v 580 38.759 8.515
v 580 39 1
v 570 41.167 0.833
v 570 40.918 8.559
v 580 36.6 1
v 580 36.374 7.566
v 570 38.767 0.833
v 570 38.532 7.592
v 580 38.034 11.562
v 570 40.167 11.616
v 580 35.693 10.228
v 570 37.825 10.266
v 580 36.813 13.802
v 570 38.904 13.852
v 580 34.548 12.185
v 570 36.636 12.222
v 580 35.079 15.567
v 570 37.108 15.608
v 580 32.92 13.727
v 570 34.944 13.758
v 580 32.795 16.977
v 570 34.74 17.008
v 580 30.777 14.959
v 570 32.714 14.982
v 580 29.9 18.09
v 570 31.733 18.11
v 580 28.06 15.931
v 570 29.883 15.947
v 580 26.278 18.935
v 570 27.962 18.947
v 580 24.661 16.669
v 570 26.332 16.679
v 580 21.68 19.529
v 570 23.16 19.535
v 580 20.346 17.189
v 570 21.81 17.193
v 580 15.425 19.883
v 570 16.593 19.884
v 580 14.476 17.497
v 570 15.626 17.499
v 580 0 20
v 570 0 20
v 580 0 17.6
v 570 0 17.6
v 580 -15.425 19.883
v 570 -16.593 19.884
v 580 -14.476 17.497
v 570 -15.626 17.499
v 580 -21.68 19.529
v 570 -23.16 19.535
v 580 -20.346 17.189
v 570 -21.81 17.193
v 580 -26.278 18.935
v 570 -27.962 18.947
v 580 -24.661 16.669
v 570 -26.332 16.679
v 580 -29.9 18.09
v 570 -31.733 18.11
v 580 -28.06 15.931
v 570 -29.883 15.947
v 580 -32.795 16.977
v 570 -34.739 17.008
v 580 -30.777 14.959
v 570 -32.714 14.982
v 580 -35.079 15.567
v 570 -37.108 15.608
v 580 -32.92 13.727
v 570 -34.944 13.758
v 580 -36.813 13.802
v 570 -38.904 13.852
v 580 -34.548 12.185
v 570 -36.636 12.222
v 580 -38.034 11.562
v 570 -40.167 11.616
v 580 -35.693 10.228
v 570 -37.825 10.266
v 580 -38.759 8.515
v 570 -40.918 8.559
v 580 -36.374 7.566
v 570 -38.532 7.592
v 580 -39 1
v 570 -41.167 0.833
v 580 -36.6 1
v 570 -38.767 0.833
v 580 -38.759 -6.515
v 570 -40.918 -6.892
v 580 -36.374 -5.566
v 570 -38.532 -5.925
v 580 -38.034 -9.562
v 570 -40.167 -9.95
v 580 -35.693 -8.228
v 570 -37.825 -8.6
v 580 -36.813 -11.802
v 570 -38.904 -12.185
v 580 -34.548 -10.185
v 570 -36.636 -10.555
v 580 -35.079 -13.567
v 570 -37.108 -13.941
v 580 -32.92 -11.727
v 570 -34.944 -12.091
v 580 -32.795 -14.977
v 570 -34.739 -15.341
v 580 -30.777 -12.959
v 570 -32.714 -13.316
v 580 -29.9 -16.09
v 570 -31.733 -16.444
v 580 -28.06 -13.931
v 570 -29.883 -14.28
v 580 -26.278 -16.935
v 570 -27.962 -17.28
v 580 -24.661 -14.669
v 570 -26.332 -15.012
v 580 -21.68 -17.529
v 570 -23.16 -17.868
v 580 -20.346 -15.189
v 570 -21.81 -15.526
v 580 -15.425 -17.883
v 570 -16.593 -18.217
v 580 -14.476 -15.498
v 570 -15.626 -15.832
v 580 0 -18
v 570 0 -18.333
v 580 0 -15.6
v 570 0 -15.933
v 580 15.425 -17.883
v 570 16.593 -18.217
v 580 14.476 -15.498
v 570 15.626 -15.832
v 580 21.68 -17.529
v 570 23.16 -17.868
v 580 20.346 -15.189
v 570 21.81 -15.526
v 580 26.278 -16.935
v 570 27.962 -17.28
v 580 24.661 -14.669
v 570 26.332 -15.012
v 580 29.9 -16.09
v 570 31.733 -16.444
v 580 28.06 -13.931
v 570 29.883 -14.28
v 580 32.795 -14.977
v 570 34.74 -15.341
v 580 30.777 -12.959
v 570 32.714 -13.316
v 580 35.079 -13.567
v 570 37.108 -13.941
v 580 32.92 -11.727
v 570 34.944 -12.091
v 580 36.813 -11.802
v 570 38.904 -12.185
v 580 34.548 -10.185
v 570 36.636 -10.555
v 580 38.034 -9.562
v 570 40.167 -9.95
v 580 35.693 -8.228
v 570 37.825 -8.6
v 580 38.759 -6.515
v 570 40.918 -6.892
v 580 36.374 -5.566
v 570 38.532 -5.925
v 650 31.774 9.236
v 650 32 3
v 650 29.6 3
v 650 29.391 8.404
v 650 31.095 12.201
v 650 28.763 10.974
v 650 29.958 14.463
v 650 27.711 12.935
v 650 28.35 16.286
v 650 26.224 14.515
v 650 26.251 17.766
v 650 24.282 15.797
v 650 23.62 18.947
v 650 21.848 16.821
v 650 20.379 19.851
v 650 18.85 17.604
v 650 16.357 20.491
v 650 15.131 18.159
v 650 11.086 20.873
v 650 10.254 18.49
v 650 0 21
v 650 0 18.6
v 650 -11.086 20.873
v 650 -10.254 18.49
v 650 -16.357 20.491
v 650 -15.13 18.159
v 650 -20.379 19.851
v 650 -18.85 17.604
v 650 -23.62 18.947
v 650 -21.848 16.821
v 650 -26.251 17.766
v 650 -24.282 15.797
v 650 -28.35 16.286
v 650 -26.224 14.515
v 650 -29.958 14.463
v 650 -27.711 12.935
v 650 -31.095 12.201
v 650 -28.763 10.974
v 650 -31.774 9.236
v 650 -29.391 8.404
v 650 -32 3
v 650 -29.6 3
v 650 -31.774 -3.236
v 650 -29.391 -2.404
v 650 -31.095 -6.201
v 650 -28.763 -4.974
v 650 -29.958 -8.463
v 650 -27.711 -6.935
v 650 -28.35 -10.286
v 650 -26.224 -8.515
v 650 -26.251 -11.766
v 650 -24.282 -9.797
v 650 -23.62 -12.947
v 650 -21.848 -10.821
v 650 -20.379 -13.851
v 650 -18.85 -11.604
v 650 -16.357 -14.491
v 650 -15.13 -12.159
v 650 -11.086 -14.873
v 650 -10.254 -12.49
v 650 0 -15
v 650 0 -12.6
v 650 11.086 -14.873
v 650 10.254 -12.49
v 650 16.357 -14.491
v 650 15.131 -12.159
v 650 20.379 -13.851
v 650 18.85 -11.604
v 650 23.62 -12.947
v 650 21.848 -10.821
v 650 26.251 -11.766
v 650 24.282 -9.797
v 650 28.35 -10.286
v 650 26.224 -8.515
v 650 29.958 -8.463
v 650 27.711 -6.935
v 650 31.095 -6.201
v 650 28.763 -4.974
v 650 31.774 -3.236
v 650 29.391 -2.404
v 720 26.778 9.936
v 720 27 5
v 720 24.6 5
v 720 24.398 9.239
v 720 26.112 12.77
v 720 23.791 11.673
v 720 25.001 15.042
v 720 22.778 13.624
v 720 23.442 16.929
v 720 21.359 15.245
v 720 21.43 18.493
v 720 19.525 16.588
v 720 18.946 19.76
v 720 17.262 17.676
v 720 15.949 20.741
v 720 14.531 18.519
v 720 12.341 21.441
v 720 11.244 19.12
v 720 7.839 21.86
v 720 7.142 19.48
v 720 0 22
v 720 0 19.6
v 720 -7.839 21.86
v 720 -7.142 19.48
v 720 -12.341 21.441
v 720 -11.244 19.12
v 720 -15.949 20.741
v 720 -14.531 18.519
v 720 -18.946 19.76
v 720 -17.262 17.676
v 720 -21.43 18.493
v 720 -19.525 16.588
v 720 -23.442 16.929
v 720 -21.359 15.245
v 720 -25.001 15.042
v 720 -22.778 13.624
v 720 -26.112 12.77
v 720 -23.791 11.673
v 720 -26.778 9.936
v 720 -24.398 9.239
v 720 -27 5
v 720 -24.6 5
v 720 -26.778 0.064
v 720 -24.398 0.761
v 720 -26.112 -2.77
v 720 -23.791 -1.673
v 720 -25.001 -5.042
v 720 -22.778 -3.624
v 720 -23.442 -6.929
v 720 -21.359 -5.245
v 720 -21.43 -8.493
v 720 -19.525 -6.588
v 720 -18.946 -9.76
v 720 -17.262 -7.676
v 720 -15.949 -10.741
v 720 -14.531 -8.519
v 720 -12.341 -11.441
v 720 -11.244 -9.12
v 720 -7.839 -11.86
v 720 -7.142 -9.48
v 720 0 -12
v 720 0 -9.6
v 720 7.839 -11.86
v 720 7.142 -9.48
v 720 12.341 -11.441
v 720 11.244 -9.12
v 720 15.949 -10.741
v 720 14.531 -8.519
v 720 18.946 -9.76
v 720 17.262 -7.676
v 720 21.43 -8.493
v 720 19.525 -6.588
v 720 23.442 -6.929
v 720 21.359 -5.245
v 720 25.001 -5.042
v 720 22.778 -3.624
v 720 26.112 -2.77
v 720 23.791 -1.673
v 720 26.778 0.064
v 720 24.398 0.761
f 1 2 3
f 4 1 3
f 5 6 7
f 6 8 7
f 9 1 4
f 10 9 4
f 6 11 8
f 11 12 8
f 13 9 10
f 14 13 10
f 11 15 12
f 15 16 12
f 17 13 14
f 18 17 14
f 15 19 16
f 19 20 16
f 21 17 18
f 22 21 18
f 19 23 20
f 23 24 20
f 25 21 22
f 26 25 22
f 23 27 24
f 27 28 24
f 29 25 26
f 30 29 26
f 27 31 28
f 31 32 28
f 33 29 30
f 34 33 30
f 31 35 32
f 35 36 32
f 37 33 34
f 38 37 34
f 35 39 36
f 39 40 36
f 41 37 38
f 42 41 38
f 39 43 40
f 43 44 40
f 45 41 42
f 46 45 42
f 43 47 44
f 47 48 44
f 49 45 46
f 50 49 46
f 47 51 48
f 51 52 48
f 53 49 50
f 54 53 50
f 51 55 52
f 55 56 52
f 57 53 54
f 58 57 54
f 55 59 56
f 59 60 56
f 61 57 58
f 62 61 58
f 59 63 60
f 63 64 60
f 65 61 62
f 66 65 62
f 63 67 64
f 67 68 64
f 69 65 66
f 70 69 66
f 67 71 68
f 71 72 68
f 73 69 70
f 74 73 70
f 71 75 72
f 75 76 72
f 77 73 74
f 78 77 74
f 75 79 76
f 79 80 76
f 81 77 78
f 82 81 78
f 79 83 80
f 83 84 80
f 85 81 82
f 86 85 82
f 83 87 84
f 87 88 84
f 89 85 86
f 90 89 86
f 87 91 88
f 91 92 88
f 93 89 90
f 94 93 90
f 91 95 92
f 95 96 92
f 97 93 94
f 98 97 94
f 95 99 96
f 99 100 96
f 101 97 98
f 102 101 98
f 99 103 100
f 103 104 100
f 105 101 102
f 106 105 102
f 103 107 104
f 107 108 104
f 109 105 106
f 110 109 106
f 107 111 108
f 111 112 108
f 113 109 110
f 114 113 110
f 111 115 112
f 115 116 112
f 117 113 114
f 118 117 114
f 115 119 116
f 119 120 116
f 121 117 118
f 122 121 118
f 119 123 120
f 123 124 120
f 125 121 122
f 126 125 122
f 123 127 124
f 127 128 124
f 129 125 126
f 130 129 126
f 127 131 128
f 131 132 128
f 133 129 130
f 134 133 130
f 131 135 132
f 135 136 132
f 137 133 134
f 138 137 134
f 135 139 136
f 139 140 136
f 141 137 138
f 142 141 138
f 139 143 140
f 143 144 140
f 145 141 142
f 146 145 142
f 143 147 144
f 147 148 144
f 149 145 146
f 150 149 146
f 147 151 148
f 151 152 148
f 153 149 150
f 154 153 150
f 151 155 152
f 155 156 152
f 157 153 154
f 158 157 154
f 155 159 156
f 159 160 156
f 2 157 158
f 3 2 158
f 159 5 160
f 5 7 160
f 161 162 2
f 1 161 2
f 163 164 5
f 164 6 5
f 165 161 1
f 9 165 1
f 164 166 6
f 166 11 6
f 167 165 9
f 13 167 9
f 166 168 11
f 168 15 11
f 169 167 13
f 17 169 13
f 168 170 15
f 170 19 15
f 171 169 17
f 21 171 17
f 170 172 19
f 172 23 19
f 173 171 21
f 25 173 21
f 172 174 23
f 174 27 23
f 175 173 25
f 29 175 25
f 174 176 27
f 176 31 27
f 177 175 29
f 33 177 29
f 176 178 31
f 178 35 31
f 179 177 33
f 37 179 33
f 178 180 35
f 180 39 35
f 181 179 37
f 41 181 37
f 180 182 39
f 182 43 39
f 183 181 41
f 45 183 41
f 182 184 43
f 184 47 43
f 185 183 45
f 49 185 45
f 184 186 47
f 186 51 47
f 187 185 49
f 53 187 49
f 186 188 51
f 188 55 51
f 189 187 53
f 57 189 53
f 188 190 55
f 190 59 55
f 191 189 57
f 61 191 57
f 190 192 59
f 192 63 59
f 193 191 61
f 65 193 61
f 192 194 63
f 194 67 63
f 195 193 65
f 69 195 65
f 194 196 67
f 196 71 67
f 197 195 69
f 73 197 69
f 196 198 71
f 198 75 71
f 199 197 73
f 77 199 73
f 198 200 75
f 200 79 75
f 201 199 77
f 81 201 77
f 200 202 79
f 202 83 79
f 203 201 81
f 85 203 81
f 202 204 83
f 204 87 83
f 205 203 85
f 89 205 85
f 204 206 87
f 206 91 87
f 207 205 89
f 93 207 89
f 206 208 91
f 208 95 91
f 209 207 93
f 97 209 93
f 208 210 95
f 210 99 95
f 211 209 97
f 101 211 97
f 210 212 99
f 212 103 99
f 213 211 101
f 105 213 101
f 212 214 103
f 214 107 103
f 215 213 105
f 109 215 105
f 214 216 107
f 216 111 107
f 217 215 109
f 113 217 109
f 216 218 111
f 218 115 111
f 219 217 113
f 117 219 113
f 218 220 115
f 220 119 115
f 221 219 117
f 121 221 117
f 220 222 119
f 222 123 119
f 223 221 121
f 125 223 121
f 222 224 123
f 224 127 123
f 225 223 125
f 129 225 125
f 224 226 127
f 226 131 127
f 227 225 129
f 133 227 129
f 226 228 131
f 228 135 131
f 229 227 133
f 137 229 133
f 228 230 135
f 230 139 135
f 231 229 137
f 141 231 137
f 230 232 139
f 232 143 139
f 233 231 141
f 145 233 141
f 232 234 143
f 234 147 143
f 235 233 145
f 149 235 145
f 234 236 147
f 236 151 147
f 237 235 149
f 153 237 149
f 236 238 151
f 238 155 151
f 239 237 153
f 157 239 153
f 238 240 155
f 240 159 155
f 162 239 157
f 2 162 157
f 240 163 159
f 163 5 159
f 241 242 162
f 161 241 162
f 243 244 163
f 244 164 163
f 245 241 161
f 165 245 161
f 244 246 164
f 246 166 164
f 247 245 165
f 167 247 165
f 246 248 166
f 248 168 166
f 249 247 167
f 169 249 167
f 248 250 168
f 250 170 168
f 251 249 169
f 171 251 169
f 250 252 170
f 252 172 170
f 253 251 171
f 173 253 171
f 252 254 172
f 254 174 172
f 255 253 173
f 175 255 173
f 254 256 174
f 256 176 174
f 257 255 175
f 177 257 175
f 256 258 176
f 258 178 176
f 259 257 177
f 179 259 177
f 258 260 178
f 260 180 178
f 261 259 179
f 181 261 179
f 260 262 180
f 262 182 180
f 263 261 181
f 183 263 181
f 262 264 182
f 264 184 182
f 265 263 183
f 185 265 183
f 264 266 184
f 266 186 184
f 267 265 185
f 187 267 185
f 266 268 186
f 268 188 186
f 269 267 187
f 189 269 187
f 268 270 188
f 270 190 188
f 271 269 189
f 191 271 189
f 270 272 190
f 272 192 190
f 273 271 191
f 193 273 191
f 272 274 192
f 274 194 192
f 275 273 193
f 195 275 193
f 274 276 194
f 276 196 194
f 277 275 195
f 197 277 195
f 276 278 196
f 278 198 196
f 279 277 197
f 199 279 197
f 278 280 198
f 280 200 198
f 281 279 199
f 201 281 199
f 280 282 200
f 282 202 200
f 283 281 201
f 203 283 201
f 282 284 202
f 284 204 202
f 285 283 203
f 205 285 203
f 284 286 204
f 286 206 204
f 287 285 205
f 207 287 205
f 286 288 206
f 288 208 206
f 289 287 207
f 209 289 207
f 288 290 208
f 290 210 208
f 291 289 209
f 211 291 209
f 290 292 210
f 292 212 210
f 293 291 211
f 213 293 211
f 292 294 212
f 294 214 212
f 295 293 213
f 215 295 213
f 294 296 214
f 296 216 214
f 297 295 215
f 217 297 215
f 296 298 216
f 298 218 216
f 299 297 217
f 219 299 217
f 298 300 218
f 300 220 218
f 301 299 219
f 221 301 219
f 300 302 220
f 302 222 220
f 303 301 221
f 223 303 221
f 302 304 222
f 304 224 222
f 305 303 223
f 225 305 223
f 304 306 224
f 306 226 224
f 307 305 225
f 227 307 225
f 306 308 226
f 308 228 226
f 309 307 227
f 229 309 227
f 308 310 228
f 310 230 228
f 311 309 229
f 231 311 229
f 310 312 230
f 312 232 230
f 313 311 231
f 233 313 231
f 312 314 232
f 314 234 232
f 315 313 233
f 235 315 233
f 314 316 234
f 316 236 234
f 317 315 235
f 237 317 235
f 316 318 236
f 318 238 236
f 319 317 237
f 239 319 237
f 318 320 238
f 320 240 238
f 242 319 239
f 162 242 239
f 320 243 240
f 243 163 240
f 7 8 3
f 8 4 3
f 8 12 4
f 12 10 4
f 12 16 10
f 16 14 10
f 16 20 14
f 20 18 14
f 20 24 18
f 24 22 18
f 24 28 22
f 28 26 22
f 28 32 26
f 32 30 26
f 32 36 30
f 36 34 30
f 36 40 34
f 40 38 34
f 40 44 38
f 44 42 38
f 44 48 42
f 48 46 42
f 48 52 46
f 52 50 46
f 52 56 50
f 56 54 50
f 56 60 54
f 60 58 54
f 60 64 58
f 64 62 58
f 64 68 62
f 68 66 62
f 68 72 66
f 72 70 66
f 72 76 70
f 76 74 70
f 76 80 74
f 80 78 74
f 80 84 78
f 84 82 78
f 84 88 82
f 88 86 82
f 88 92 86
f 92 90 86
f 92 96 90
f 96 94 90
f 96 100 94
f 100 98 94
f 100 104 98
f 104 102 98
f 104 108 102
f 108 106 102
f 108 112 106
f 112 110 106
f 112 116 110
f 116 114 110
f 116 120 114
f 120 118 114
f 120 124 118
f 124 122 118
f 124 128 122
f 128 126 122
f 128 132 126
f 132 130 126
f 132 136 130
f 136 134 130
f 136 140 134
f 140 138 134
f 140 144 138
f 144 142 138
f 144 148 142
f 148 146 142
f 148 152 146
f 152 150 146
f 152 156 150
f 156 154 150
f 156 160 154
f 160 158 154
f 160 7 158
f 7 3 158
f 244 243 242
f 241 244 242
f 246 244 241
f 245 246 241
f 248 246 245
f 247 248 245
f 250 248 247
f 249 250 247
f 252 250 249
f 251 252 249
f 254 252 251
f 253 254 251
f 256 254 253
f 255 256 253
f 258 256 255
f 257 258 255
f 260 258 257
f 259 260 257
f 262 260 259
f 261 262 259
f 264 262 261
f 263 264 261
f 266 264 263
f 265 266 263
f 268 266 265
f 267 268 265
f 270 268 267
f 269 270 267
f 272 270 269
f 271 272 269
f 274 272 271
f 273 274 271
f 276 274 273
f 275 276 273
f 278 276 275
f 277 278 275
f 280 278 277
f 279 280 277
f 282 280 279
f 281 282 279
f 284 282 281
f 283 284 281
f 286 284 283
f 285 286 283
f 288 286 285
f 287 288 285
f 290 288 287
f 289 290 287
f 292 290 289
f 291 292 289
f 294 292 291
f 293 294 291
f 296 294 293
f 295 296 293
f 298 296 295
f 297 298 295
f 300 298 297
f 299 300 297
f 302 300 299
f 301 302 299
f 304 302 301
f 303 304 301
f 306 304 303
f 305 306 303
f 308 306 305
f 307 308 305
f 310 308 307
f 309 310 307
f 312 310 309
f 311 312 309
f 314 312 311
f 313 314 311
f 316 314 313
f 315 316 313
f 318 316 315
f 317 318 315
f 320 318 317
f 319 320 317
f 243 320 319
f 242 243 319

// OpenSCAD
polyhedron(points=[[570.0, 41.166667, 0.833333], [570.0, 40.917639, 8.558963], [570.0, 40.167171, 11.616394], [570.0, 38.904296, 13.85209], [570.0, 37.107674, 15.607767], [570.0, 34.739541, 17.007613], [570.0, 31.732914, 18.110186], [570.0, 27.962024, 18.94667], [570.0, 23.160138, 19.534648], [570.0, 16.59331, 19.884056], [570.0, 0.0, 20.0], [570.0, -16.59331, 19.884056], [570.0, -23.160138, 19.534648], [570.0, -27.962024, 18.94667], [570.0, -31.732914, 18.110186], [570.0, -34.739541, 17.007613], [570.0, -37.107674, 15.607767], [570.0, -38.904296, 13.85209], [570.0, -40.167171, 11.616394], [570.0, -40.917639, 8.558963], [570.0, -41.166667, 0.833334], [570.0, -40.917639, -6.892297], [570.0, -40.167171, -9.949727], [570.0, -38.904296, -12.185423], [570.0, -37.107674, -13.9411], [570.0, -34.739541, -15.340947], [570.0, -31.732914, -16.443519], [570.0, -27.962024, -17.280003], [570.0, -23.160138, -17.867981], [570.0, -16.59331, -18.217389], [570.0, -1e-06, -18.333333], [570.0, 16.59331, -18.217389], [570.0, 23.160138, -17.867981], [570.0, 27.962024, -17.280003], [570.0, 31.732914, -16.443519], [570.0, 34.739541, -15.340947], [570.0, 37.107674, -13.9411], [570.0, 38.904296, -12.185423], [570.0, 40.167171, -9.949727], [570.0, 40.917639, -6.892297], [570.0, 38.766667, 0.833333], [570.0, 38.532157, 7.59158], [570.0, 37.825442, 10.266167], [570.0, 36.636192, 12.221915], [570.0, 34.944312, 13.757751], [570.0, 32.714239, 14.982312], [570.0, 29.882898, 15.946823], [570.0, 26.33185, 16.678565], [570.0, 21.809912, 17.192918], [570.0, 15.625927, 17.498574], [570.0, 0.0, 17.6], [570.0, -15.625927, 17.498574], [570.0, -21.809912, 17.192918], [570.0, -26.33185, 16.678565], [570.0, -29.882898, 15.946823], [570.0, -32.714239, 14.982312], [570.0, -34.944312, 13.757751], [570.0, -36.636192, 12.221915], [570.0, -37.825442, 10.266167], [570.0, -38.532157, 7.59158], [570.0, -38.766667, 0.833334], [570.0, -38.532157, -5.924913], [570.0, -37.825442, -8.5995], [570.0, -36.636192, -10.555248], [570.0, -34.944312, -12.091084], [570.0, -32.714239, -13.315646], [570.0, -29.882898, -14.280157], [570.0, -26.33185, -15.011898], [570.0, -21.809912, -15.526251], [570.0, -15.625927, -15.831907], [570.0, -1e-06, -15.933333], [570.0, 15.625927, -15.831907], [570.0, 21.809912, -15.526251], [570.0, 26.33185, -15.011898], [570.0, 29.882898, -14.280157], [570.0, 32.714239, -13.315646], [570.0, 34.944312, -12.091084], [570.0, 36.636192, -10.555248], [570.0, 37.825442, -8.5995], [570.0, 38.532157, -5.924913], [580.0, 39.0, 1.0], [580.0, 38.759179, 8.514841], [580.0, 38.033629, 11.561966], [580.0, 36.813325, 13.801975], [580.0, 35.078695, 15.566759], [580.0, 32.79496, 16.977032], [580.0, 29.90019, 18.089621], [580.0, 26.277739, 18.934697], [580.0, 21.679826, 19.529204], [580.0, 15.425201, 19.882677], [580.0, 0.0, 20.0], [580.0, -15.425201, 19.882677], [580.0, -21.679826, 19.529204], [580.0, -26.277739, 18.934697], [580.0, -29.90019, 18.089621], [580.0, -32.79496, 16.977032], [580.0, -35.078695, 15.566759], [580.0, -36.813325, 13.801975], [580.0, -38.033629, 11.561966], [580.0, -38.759179, 8.514841], [580.0, -39.0, 1.0], [580.0, -38.759179, -6.514841], [580.0, -38.033629, -9.561966], [580.0, -36.813325, -11.801975], [580.0, -35.078695, -13.566759], [580.0, -32.79496, -14.977032], [580.0, -29.90019, -16.089621], [580.0, -26.277739, -16.934697], [580.0, -21.679826, -17.529204], [580.0, -15.425201, -17.882677], [580.0, -1e-06, -18.0], [580.0, 15.425201, -17.882677], [580.0, 21.679826, -17.529204], [580.0, 26.277739, -16.934697], [580.0, 29.90019, -16.089621], [580.0, 32.79496, -14.977032], [580.0, 35.078695, -13.566759], [580.0, 36.813325, -11.801975], [580.0, 38.033629, -9.561966], [580.0, 38.759179, -6.514841], [580.0, 36.6, 1.0], [580.0, 36.373999, 7.565598], [580.0, 35.693098, 10.227823], [580.0, 34.54789, 12.184884], [580.0, 32.920006, 13.726748], [580.0, 30.776809, 14.95888], [580.0, 28.060178, 15.930932], [580.0, 24.660647, 16.669262], [580.0, 20.345683, 17.188673], [580.0, 14.475958, 17.497497], [580.0, 0.0, 17.6], [580.0, -14.475958, 17.497497], [580.0, -20.345683, 17.188673], [580.0, -24.660647, 16.669262], [580.0, -28.060178, 15.930932], [580.0, -30.776809, 14.95888], [580.0, -32.920006, 13.726748], [580.0, -34.54789, 12.184884], [580.0, -35.693098, 10.227823], [580.0, -36.373999, 7.565598], [580.0, -36.6, 1.0], [580.0, -36.373999, -5.565598], [580.0, -35.693098, -8.227823], [580.0, -34.54789, -10.184884], [580.0, -32.920006, -11.726748], [580.0, -30.776809, -12.95888], [580.0, -28.060178, -13.930932], [580.0, -24.660647, -14.669262], [580.0, -20.345683, -15.188673], [580.0, -14.475958, -15.497497], [580.0, -0.0, -15.6], [580.0, 14.475958, -15.497497], [580.0, 20.345683, -15.188673], [580.0, 24.660647, -14.669262], [580.0, 28.060178, -13.930932], [580.0, 30.776809, -12.95888], [580.0, 32.920006, -11.726748], [580.0, 34.54789, -10.184884], [580.0, 35.693098, -8.227823], [580.0, 36.373999, -5.565598], [650.0, 32.0, 3.0], [650.0, 31.774275, 9.235784], [650.0, 31.095422, 12.200975], [650.0, 29.957839, 14.463025], [650.0, 28.350084, 16.286099], [650.0, 26.250731, 17.766036], [650.0, 23.619731, 18.946922], [650.0, 20.378711, 19.851284], [650.0, 16.357289, 20.491175], [650.0, 11.085838, 20.87303], [650.0, 0.0, 21.0], [650.0, -11.085838, 20.87303], [650.0, -16.357289, 20.491175], [650.0, -20.378711, 19.851284], [650.0, -23.619731, 18.946922], [650.0, -26.250731, 17.766036], [650.0, -28.350084, 16.286099], [650.0, -29.957839, 14.463025], [650.0, -31.095422, 12.200975], [650.0, -31.774275, 9.235784], [650.0, -32.0, 3.0], [650.0, -31.774275, -3.235784], [650.0, -31.095422, -6.200975], [650.0, -29.957839, -8.463025], [650.0, -28.350084, -10.286099], [650.0, -26.250731, -11.766036], [650.0, -23.619731, -12.946922], [650.0, -20.378711, -13.851284], [650.0, -16.357289, -14.491175], [650.0, -11.085838, -14.87303], [650.0, -0.0, -15.0], [650.0, 11.085838, -14.87303], [650.0, 16.357289, -14.491175], [650.0, 20.378711, -13.851284], [650.0, 23.619731, -12.946922], [650.0, 26.250731, -11.766036], [650.0, 28.350084, -10.286099], [650.0, 29.957839, -8.463025], [650.0, 31.095422, -6.200975], [650.0, 31.774275, -3.235784], [650.0, 29.6, 3.0], [650.0, 29.391204, 8.404346], [650.0, 28.763265, 10.974178], [650.0, 27.711001, 12.934621], [650.0, 26.223827, 14.514619], [650.0, 24.281927, 15.797232], [650.0, 21.848251, 16.820666], [650.0, 18.850307, 17.604447], [650.0, 15.130492, 18.159018], [650.0, 10.2544, 18.489959], [650.0, 0.0, 18.6], [650.0, -10.2544, 18.489959], [650.0, -15.130492, 18.159018], [650.0, -18.850307, 17.604447], [650.0, -21.848251, 16.820666], [650.0, -24.281927, 15.797232], [650.0, -26.223827, 14.514619], [650.0, -27.711001, 12.934621], [650.0, -28.763265, 10.974178], [650.0, -29.391204, 8.404346], [650.0, -29.6, 3.0], [650.0, -29.391204, -2.404346], [650.0, -28.763265, -4.974178], [650.0, -27.711001, -6.934621], [650.0, -26.223827, -8.514619], [650.0, -24.281927, -9.797232], [650.0, -21.848251, -10.820666], [650.0, -18.850307, -11.604447], [650.0, -15.130492, -12.159018], [650.0, -10.2544, -12.489959], [650.0, -0.0, -12.6], [650.0, 10.2544, -12.489959], [650.0, 15.130492, -12.159018], [650.0, 18.850307, -11.604447], [650.0, 21.848251, -10.820666], [650.0, 24.281927, -9.797232], [650.0, 26.223827, -8.514619], [650.0, 27.711001, -6.934621], [650.0, 28.763265, -4.974178], [650.0, 29.391204, -2.404346], [720.0, 27.0, 5.0], [720.0, 26.777933, 9.935569], [720.0, 26.11167, 12.770289], [720.0, 25.000634, 15.041843], [720.0, 23.442407, 16.928744], [720.0, 21.429914, 18.492909], [720.0, 18.945652, 19.760034], [720.0, 15.94881, 20.74114], [720.0, 12.341047, 21.440681], [720.0, 7.838845, 21.86018], [720.0, 0.0, 22.0], [720.0, -7.838845, 21.86018], [720.0, -12.341047, 21.440681], [720.0, -15.94881, 20.74114], [720.0, -18.945652, 19.760034], [720.0, -21.429914, 18.492909], [720.0, -23.442407, 16.928744], [720.0, -25.000634, 15.041843], [720.0, -26.11167, 12.770289], [720.0, -26.777933, 9.935569], [720.0, -27.0, 5.0], [720.0, -26.777933, 0.064431], [720.0, -26.11167, -2.770289], [720.0, -25.000634, -5.041843], [720.0, -23.442407, -6.928744], [720.0, -21.429914, -8.492909], [720.0, -18.945652, -9.760034], [720.0, -15.94881, -10.74114], [720.0, -12.341047, -11.440681], [720.0, -7.838845, -11.86018], [720.0, -0.0, -12.0], [720.0, 7.838845, -11.86018], [720.0, 12.341047, -11.440681], [720.0, 15.94881, -10.74114], [720.0, 18.945652, -9.760034], [720.0, 21.429914, -8.492909], [720.0, 23.442407, -6.928744], [720.0, 25.000634, -5.041843], [720.0, 26.11167, -2.770289], [720.0, 26.777933, 0.064431], [720.0, 24.6, 5.0], [720.0, 24.397672, 9.238783], [720.0, 23.790633, 11.673307], [720.0, 22.778355, 13.624171], [720.0, 21.358637, 15.244686], [720.0, 19.525033, 16.588028], [720.0, 17.261594, 17.676264], [720.0, 14.531138, 18.518861], [720.0, 11.244065, 19.119644], [720.0, 7.142058, 19.479919], [720.0, 0.0, 19.6], [720.0, -7.142058, 19.479919], [720.0, -11.244065, 19.119644], [720.0, -14.531138, 18.518861], [720.0, -17.261594, 17.676264], [720.0, -19.525033, 16.588028], [720.0, -21.358637, 15.244686], [720.0, -22.778355, 13.624171], [720.0, -23.790633, 11.673307], [720.0, -24.397672, 9.238783], [720.0, -24.6, 5.0], [720.0, -24.397672, 0.761217], [720.0, -23.790633, -1.673307], [720.0, -22.778355, -3.624171], [720.0, -21.358637, -5.244686], [720.0, -19.525033, -6.588028], [720.0, -17.261594, -7.676264], [720.0, -14.531138, -8.518861], [720.0, -11.244065, -9.119644], [720.0, -7.142058, -9.479919], [720.0, -0.0, -9.6], [720.0, 7.142058, -9.479919], [720.0, 11.244065, -9.119644], [720.0, 14.531138, -8.518861], [720.0, 17.261594, -7.676264], [720.0, 19.525033, -6.588028], [720.0, 21.358637, -5.244686], [720.0, 22.778355, -3.624171], [720.0, 23.790633, -1.673307], [720.0, 24.397672, 0.761217]], faces=[[0, 80, 81], [0, 81, 1], [40, 121, 120], [40, 41, 121], [1, 81, 82], [1, 82, 2], [41, 122, 121], [41, 42, 122], [2, 82, 83], [2, 83, 3], [42, 123, 122], [42, 43, 123], [3, 83, 84], [3, 84, 4], [43, 124, 123], [43, 44, 124], [4, 84, 85], [4, 85, 5], [44, 125, 124], [44, 45, 125], [5, 85, 86], [5, 86, 6], [45, 126, 125], [45, 46, 126], [6, 86, 87], [6, 87, 7], [46, 127, 126], [46, 47, 127], [7, 87, 88], [7, 88, 8], [47, 128, 127], [47, 48, 128], [8, 88, 89], [8, 89, 9], [48, 129, 128], [48, 49, 129], [9, 89, 90], [9, 90, 10], [49, 130, 129], [49, 50, 130], [10, 90, 91], [10, 91, 11], [50, 131, 130], [50, 51, 131], [11, 91, 92], [11, 92, 12], [51, 132, 131], [51, 52, 132], [12, 92, 93], [12, 93, 13], [52, 133, 132], [52, 53, 133], [13, 93, 94], [13, 94, 14], [53, 134, 133], [53, 54, 134], [14, 94, 95], [14, 95, 15], [54, 135, 134], [54, 55, 135], [15, 95, 96], [15, 96, 16], [55, 136, 135], [55, 56, 136], [16, 96, 97], [16, 97, 17], [56, 137, 136], [56, 57, 137], [17, 97, 98], [17, 98, 18], [57, 138, 137], [57, 58, 138], [18, 98, 99], [18, 99, 19], [58, 139, 138], [58, 59, 139], [19, 99, 100], [19, 100, 20], [59, 140, 139], [59, 60, 140], [20, 100, 101], [20, 101, 21], [60, 141, 140], [60, 61, 141], [21, 101, 102], [21, 102, 22], [61, 142, 141], [61, 62, 142], [22, 102, 103], [22, 103, 23], [62, 143, 142], [62, 63, 143], [23, 103, 104], [23, 104, 24], [63, 144, 143], [63, 64, 144], [24, 104, 105], [24, 105, 25], [64, 145, 144], [64, 65, 145], [25, 105, 106], [25, 106, 26], [65, 146, 145], [65, 66, 146], [26, 106, 107], [26, 107, 27], [66, 147, 146], [66, 67, 147], [27, 107, 108], [27, 108, 28], [67, 148, 147], [67, 68, 148], [28, 108, 109], [28, 109, 29], [68, 149, 148], [68, 69, 149], [29, 109, 110], [29, 110, 30], [69, 150, 149], [69, 70, 150], [30, 110, 111], [30, 111, 31], [70, 151, 150], [70, 71, 151], [31, 111, 112], [31, 112, 32], [71, 152, 151], [71, 72, 152], [32, 112, 113], [32, 113, 33], [72, 153, 152], [72, 73, 153], [33, 113, 114], [33, 114, 34], [73, 154, 153], [73, 74, 154], [34, 114, 115], [34, 115, 35], [74, 155, 154], [74, 75, 155], [35, 115, 116], [35, 116, 36], [75, 156, 155], [75, 76, 156], [36, 116, 117], [36, 117, 37], [76, 157, 156], [76, 77, 157], [37, 117, 118], [37, 118, 38], [77, 158, 157], [77, 78, 158], [38, 118, 119], [38, 119, 39], [78, 159, 158], [78, 79, 159], [39, 119, 80], [39, 80, 0], [79, 120, 159], [79, 40, 120], [80, 160, 161], [80, 161, 81], [120, 201, 200], [120, 121, 201], [81, 161, 162], [81, 162, 82], [121, 202, 201], [121, 122, 202], [82, 162, 163], [82, 163, 83], [122, 203, 202], [122, 123, 203], [83, 163, 164], [83, 164, 84], [123, 204, 203], [123, 124, 204], [84, 164, 165], [84, 165, 85], [124, 205, 204], [124, 125, 205], [85, 165, 166], [85, 166, 86], [125, 206, 205], [125, 126, 206], [86, 166, 167], [86, 167, 87], [126, 207, 206], [126, 127, 207], [87, 167, 168], [87, 168, 88], [127, 208, 207], [127, 128, 208], [88, 168, 169], [88, 169, 89], [128, 209, 208], [128, 129, 209], [89, 169, 170], [89, 170, 90], [129, 210, 209], [129, 130, 210], [90, 170, 171], [90, 171, 91], [130, 211, 210], [130, 131, 211], [91, 171, 172], [91, 172, 92], [131, 212, 211], [131, 132, 212], [92, 172, 173], [92, 173, 93], [132, 213, 212], [132, 133, 213], [93, 173, 174], [93, 174, 94], [133, 214, 213], [133, 134, 214], [94, 174, 175], [94, 175, 95], [134, 215, 214], [134, 135, 215], [95, 175, 176], [95, 176, 96], [135, 216, 215], [135, 136, 216], [96, 176, 177], [96, 177, 97], [136, 217, 216], [136, 137, 217], [97, 177, 178], [97, 178, 98], [137, 218, 217], [137, 138, 218], [98, 178, 179], [98, 179, 99], [138, 219, 218], [138, 139, 219], [99, 179, 180], [99, 180, 100], [139, 220, 219], [139, 140, 220], [100, 180, 181], [100, 181, 101], [140, 221, 220], [140, 141, 221], [101, 181, 182], [101, 182, 102], [141, 222, 221], [141, 142, 222], [102, 182, 183], [102, 183, 103], [142, 223, 222], [142, 143, 223], [103, 183, 184], [103, 184, 104], [143, 224, 223], [143, 144, 224], [104, 184, 185], [104, 185, 105], [144, 225, 224], [144, 145, 225], [105, 185, 186], [105, 186, 106], [145, 226, 225], [145, 146, 226], [106, 186, 187], [106, 187, 107], [146, 227, 226], [146, 147, 227], [107, 187, 188], [107, 188, 108], [147, 228, 227], [147, 148, 228], [108, 188, 189], [108, 189, 109], [148, 229, 228], [148, 149, 229], [109, 189, 190], [109, 190, 110], [149, 230, 229], [149, 150, 230], [110, 190, 191], [110, 191, 111], [150, 231, 230], [150, 151, 231], [111, 191, 192], [111, 192, 112], [151, 232, 231], [151, 152, 232], [112, 192, 193], [112, 193, 113], [152, 233, 232], [152, 153, 233], [113, 193, 194], [113, 194, 114], [153, 234, 233], [153, 154, 234], [114, 194, 195], [114, 195, 115], [154, 235, 234], [154, 155, 235], [115, 195, 196], [115, 196, 116], [155, 236, 235], [155, 156, 236], [116, 196, 197], [116, 197, 117], [156, 237, 236], [156, 157, 237], [117, 197, 198], [117, 198, 118], [157, 238, 237], [157, 158, 238], [118, 198, 199], [118, 199, 119], [158, 239, 238], [158, 159, 239], [119, 199, 160], [119, 160, 80], [159, 200, 239], [159, 120, 200], [160, 240, 241], [160, 241, 161], [200, 281, 280], [200, 201, 281], [161, 241, 242], [161, 242, 162], [201, 282, 281], [201, 202, 282], [162, 242, 243], [162, 243, 163], [202, 283, 282], [202, 203, 283], [163, 243, 244], [163, 244, 164], [203, 284, 283], [203, 204, 284], [164, 244, 245], [164, 245, 165], [204, 285, 284], [204, 205, 285], [165, 245, 246], [165, 246, 166], [205, 286, 285], [205, 206, 286], [166, 246, 247], [166, 247, 167], [206, 287, 286], [206, 207, 287], [167, 247, 248], [167, 248, 168], [207, 288, 287], [207, 208, 288], [168, 248, 249], [168, 249, 169], [208, 289, 288], [208, 209, 289], [169, 249, 250], [169, 250, 170], [209, 290, 289], [209, 210, 290], [170, 250, 251], [170, 251, 171], [210, 291, 290], [210, 211, 291], [171, 251, 252], [171, 252, 172], [211, 292, 291], [211, 212, 292], [172, 252, 253], [172, 253, 173], [212, 293, 292], [212, 213, 293], [173, 253, 254], [173, 254, 174], [213, 294, 293], [213, 214, 294], [174, 254, 255], [174, 255, 175], [214, 295, 294], [214, 215, 295], [175, 255, 256], [175, 256, 176], [215, 296, 295], [215, 216, 296], [176, 256, 257], [176, 257, 177], [216, 297, 296], [216, 217, 297], [177, 257, 258], [177, 258, 178], [217, 298, 297], [217, 218, 298], [178, 258, 259], [178, 259, 179], [218, 299, 298], [218, 219, 299], [179, 259, 260], [179, 260, 180], [219, 300, 299], [219, 220, 300], [180, 260, 261], [180, 261, 181], [220, 301, 300], [220, 221, 301], [181, 261, 262], [181, 262, 182], [221, 302, 301], [221, 222, 302], [182, 262, 263], [182, 263, 183], [222, 303, 302], [222, 223, 303], [183, 263, 264], [183, 264, 184], [223, 304, 303], [223, 224, 304], [184, 264, 265], [184, 265, 185], [224, 305, 304], [224, 225, 305], [185, 265, 266], [185, 266, 186], [225, 306, 305], [225, 226, 306], [186, 266, 267], [186, 267, 187], [226, 307, 306], [226, 227, 307], [187, 267, 268], [187, 268, 188], [227, 308, 307], [227, 228, 308], [188, 268, 269], [188, 269, 189], [228, 309, 308], [228, 229, 309], [189, 269, 270], [189, 270, 190], [229, 310, 309], [229, 230, 310], [190, 270, 271], [190, 271, 191], [230, 311, 310], [230, 231, 311], [191, 271, 272], [191, 272, 192], [231, 312, 311], [231, 232, 312], [192, 272, 273], [192, 273, 193], [232, 313, 312], [232, 233, 313], [193, 273, 274], [193, 274, 194], [233, 314, 313], [233, 234, 314], [194, 274, 275], [194, 275, 195], [234, 315, 314], [234, 235, 315], [195, 275, 276], [195, 276, 196], [235, 316, 315], [235, 236, 316], [196, 276, 277], [196, 277, 197], [236, 317, 316], [236, 237, 317], [197, 277, 278], [197, 278, 198], [237, 318, 317], [237, 238, 318], [198, 278, 279], [198, 279, 199], [238, 319, 318], [238, 239, 319], [199, 279, 240], [199, 240, 160], [239, 280, 319], [239, 200, 280], [0, 41, 40], [0, 1, 41], [1, 42, 41], [1, 2, 42], [2, 43, 42], [2, 3, 43], [3, 44, 43], [3, 4, 44], [4, 45, 44], [4, 5, 45], [5, 46, 45], [5, 6, 46], [6, 47, 46], [6, 7, 47], [7, 48, 47], [7, 8, 48], [8, 49, 48], [8, 9, 49], [9, 50, 49], [9, 10, 50], [10, 51, 50], [10, 11, 51], [11, 52, 51], [11, 12, 52], [12, 53, 52], [12, 13, 53], [13, 54, 53], [13, 14, 54], [14, 55, 54], [14, 15, 55], [15, 56, 55], [15, 16, 56], [16, 57, 56], [16, 17, 57], [17, 58, 57], [17, 18, 58], [18, 59, 58], [18, 19, 59], [19, 60, 59], [19, 20, 60], [20, 61, 60], [20, 21, 61], [21, 62, 61], [21, 22, 62], [22, 63, 62], [22, 23, 63], [23, 64, 63], [23, 24, 64], [24, 65, 64], [24, 25, 65], [25, 66, 65], [25, 26, 66], [26, 67, 66], [26, 27, 67], [27, 68, 67], [27, 28, 68], [28, 69, 68], [28, 29, 69], [29, 70, 69], [29, 30, 70], [30, 71, 70], [30, 31, 71], [31, 72, 71], [31, 32, 72], [32, 73, 72], [32, 33, 73], [33, 74, 73], [33, 34, 74], [34, 75, 74], [34, 35, 75], [35, 76, 75], [35, 36, 76], [36, 77, 76], [36, 37, 77], [37, 78, 77], [37, 38, 78], [38, 79, 78], [38, 39, 79], [39, 40, 79], [39, 0, 40], [240, 280, 281], [240, 281, 241], [241, 281, 282], [241, 282, 242], [242, 282, 283], [242, 283, 243], [243, 283, 284], [243, 284, 244], [244, 284, 285], [244, 285, 245], [245, 285, 286], [245, 286, 246], [246, 286, 287], [246, 287, 247], [247, 287, 288], [247, 288, 248], [248, 288, 289], [248, 289, 249], [249, 289, 290], [249, 290, 250], [250, 290, 291], [250, 291, 251], [251, 291, 292], [251, 292, 252], [252, 292, 293], [252, 293, 253], [253, 293, 294], [253, 294, 254], [254, 294, 295], [254, 295, 255], [255, 295, 296], [255, 296, 256], [256, 296, 297], [256, 297, 257], [257, 297, 298], [257, 298, 258], [258, 298, 299], [258, 299, 259], [259, 299, 300], [259, 300, 260], [260, 300, 301], [260, 301, 261], [261, 301, 302], [261, 302, 262], [262, 302, 303], [262, 303, 263], [263, 303, 304], [263, 304, 264], [264, 304, 305], [264, 305, 265], [265, 305, 306], [265, 306, 266], [266, 306, 307], [266, 307, 267], [267, 307, 308], [267, 308, 268], [268, 308, 309], [268, 309, 269], [269, 309, 310], [269, 310, 270], [270, 310, 311], [270, 311, 271], [271, 311, 312], [271, 312, 272], [272, 312, 313], [272, 313, 273], [273, 313, 314], [273, 314, 274], [274, 314, 315], [274, 315, 275], [275, 315, 316], [275, 316, 276], [276, 316, 317], [276, 317, 277], [277, 317, 318], [277, 318, 278], [278, 318, 319], [278, 319, 279], [279, 319, 280], [279, 280, 240]], convexity=30);
